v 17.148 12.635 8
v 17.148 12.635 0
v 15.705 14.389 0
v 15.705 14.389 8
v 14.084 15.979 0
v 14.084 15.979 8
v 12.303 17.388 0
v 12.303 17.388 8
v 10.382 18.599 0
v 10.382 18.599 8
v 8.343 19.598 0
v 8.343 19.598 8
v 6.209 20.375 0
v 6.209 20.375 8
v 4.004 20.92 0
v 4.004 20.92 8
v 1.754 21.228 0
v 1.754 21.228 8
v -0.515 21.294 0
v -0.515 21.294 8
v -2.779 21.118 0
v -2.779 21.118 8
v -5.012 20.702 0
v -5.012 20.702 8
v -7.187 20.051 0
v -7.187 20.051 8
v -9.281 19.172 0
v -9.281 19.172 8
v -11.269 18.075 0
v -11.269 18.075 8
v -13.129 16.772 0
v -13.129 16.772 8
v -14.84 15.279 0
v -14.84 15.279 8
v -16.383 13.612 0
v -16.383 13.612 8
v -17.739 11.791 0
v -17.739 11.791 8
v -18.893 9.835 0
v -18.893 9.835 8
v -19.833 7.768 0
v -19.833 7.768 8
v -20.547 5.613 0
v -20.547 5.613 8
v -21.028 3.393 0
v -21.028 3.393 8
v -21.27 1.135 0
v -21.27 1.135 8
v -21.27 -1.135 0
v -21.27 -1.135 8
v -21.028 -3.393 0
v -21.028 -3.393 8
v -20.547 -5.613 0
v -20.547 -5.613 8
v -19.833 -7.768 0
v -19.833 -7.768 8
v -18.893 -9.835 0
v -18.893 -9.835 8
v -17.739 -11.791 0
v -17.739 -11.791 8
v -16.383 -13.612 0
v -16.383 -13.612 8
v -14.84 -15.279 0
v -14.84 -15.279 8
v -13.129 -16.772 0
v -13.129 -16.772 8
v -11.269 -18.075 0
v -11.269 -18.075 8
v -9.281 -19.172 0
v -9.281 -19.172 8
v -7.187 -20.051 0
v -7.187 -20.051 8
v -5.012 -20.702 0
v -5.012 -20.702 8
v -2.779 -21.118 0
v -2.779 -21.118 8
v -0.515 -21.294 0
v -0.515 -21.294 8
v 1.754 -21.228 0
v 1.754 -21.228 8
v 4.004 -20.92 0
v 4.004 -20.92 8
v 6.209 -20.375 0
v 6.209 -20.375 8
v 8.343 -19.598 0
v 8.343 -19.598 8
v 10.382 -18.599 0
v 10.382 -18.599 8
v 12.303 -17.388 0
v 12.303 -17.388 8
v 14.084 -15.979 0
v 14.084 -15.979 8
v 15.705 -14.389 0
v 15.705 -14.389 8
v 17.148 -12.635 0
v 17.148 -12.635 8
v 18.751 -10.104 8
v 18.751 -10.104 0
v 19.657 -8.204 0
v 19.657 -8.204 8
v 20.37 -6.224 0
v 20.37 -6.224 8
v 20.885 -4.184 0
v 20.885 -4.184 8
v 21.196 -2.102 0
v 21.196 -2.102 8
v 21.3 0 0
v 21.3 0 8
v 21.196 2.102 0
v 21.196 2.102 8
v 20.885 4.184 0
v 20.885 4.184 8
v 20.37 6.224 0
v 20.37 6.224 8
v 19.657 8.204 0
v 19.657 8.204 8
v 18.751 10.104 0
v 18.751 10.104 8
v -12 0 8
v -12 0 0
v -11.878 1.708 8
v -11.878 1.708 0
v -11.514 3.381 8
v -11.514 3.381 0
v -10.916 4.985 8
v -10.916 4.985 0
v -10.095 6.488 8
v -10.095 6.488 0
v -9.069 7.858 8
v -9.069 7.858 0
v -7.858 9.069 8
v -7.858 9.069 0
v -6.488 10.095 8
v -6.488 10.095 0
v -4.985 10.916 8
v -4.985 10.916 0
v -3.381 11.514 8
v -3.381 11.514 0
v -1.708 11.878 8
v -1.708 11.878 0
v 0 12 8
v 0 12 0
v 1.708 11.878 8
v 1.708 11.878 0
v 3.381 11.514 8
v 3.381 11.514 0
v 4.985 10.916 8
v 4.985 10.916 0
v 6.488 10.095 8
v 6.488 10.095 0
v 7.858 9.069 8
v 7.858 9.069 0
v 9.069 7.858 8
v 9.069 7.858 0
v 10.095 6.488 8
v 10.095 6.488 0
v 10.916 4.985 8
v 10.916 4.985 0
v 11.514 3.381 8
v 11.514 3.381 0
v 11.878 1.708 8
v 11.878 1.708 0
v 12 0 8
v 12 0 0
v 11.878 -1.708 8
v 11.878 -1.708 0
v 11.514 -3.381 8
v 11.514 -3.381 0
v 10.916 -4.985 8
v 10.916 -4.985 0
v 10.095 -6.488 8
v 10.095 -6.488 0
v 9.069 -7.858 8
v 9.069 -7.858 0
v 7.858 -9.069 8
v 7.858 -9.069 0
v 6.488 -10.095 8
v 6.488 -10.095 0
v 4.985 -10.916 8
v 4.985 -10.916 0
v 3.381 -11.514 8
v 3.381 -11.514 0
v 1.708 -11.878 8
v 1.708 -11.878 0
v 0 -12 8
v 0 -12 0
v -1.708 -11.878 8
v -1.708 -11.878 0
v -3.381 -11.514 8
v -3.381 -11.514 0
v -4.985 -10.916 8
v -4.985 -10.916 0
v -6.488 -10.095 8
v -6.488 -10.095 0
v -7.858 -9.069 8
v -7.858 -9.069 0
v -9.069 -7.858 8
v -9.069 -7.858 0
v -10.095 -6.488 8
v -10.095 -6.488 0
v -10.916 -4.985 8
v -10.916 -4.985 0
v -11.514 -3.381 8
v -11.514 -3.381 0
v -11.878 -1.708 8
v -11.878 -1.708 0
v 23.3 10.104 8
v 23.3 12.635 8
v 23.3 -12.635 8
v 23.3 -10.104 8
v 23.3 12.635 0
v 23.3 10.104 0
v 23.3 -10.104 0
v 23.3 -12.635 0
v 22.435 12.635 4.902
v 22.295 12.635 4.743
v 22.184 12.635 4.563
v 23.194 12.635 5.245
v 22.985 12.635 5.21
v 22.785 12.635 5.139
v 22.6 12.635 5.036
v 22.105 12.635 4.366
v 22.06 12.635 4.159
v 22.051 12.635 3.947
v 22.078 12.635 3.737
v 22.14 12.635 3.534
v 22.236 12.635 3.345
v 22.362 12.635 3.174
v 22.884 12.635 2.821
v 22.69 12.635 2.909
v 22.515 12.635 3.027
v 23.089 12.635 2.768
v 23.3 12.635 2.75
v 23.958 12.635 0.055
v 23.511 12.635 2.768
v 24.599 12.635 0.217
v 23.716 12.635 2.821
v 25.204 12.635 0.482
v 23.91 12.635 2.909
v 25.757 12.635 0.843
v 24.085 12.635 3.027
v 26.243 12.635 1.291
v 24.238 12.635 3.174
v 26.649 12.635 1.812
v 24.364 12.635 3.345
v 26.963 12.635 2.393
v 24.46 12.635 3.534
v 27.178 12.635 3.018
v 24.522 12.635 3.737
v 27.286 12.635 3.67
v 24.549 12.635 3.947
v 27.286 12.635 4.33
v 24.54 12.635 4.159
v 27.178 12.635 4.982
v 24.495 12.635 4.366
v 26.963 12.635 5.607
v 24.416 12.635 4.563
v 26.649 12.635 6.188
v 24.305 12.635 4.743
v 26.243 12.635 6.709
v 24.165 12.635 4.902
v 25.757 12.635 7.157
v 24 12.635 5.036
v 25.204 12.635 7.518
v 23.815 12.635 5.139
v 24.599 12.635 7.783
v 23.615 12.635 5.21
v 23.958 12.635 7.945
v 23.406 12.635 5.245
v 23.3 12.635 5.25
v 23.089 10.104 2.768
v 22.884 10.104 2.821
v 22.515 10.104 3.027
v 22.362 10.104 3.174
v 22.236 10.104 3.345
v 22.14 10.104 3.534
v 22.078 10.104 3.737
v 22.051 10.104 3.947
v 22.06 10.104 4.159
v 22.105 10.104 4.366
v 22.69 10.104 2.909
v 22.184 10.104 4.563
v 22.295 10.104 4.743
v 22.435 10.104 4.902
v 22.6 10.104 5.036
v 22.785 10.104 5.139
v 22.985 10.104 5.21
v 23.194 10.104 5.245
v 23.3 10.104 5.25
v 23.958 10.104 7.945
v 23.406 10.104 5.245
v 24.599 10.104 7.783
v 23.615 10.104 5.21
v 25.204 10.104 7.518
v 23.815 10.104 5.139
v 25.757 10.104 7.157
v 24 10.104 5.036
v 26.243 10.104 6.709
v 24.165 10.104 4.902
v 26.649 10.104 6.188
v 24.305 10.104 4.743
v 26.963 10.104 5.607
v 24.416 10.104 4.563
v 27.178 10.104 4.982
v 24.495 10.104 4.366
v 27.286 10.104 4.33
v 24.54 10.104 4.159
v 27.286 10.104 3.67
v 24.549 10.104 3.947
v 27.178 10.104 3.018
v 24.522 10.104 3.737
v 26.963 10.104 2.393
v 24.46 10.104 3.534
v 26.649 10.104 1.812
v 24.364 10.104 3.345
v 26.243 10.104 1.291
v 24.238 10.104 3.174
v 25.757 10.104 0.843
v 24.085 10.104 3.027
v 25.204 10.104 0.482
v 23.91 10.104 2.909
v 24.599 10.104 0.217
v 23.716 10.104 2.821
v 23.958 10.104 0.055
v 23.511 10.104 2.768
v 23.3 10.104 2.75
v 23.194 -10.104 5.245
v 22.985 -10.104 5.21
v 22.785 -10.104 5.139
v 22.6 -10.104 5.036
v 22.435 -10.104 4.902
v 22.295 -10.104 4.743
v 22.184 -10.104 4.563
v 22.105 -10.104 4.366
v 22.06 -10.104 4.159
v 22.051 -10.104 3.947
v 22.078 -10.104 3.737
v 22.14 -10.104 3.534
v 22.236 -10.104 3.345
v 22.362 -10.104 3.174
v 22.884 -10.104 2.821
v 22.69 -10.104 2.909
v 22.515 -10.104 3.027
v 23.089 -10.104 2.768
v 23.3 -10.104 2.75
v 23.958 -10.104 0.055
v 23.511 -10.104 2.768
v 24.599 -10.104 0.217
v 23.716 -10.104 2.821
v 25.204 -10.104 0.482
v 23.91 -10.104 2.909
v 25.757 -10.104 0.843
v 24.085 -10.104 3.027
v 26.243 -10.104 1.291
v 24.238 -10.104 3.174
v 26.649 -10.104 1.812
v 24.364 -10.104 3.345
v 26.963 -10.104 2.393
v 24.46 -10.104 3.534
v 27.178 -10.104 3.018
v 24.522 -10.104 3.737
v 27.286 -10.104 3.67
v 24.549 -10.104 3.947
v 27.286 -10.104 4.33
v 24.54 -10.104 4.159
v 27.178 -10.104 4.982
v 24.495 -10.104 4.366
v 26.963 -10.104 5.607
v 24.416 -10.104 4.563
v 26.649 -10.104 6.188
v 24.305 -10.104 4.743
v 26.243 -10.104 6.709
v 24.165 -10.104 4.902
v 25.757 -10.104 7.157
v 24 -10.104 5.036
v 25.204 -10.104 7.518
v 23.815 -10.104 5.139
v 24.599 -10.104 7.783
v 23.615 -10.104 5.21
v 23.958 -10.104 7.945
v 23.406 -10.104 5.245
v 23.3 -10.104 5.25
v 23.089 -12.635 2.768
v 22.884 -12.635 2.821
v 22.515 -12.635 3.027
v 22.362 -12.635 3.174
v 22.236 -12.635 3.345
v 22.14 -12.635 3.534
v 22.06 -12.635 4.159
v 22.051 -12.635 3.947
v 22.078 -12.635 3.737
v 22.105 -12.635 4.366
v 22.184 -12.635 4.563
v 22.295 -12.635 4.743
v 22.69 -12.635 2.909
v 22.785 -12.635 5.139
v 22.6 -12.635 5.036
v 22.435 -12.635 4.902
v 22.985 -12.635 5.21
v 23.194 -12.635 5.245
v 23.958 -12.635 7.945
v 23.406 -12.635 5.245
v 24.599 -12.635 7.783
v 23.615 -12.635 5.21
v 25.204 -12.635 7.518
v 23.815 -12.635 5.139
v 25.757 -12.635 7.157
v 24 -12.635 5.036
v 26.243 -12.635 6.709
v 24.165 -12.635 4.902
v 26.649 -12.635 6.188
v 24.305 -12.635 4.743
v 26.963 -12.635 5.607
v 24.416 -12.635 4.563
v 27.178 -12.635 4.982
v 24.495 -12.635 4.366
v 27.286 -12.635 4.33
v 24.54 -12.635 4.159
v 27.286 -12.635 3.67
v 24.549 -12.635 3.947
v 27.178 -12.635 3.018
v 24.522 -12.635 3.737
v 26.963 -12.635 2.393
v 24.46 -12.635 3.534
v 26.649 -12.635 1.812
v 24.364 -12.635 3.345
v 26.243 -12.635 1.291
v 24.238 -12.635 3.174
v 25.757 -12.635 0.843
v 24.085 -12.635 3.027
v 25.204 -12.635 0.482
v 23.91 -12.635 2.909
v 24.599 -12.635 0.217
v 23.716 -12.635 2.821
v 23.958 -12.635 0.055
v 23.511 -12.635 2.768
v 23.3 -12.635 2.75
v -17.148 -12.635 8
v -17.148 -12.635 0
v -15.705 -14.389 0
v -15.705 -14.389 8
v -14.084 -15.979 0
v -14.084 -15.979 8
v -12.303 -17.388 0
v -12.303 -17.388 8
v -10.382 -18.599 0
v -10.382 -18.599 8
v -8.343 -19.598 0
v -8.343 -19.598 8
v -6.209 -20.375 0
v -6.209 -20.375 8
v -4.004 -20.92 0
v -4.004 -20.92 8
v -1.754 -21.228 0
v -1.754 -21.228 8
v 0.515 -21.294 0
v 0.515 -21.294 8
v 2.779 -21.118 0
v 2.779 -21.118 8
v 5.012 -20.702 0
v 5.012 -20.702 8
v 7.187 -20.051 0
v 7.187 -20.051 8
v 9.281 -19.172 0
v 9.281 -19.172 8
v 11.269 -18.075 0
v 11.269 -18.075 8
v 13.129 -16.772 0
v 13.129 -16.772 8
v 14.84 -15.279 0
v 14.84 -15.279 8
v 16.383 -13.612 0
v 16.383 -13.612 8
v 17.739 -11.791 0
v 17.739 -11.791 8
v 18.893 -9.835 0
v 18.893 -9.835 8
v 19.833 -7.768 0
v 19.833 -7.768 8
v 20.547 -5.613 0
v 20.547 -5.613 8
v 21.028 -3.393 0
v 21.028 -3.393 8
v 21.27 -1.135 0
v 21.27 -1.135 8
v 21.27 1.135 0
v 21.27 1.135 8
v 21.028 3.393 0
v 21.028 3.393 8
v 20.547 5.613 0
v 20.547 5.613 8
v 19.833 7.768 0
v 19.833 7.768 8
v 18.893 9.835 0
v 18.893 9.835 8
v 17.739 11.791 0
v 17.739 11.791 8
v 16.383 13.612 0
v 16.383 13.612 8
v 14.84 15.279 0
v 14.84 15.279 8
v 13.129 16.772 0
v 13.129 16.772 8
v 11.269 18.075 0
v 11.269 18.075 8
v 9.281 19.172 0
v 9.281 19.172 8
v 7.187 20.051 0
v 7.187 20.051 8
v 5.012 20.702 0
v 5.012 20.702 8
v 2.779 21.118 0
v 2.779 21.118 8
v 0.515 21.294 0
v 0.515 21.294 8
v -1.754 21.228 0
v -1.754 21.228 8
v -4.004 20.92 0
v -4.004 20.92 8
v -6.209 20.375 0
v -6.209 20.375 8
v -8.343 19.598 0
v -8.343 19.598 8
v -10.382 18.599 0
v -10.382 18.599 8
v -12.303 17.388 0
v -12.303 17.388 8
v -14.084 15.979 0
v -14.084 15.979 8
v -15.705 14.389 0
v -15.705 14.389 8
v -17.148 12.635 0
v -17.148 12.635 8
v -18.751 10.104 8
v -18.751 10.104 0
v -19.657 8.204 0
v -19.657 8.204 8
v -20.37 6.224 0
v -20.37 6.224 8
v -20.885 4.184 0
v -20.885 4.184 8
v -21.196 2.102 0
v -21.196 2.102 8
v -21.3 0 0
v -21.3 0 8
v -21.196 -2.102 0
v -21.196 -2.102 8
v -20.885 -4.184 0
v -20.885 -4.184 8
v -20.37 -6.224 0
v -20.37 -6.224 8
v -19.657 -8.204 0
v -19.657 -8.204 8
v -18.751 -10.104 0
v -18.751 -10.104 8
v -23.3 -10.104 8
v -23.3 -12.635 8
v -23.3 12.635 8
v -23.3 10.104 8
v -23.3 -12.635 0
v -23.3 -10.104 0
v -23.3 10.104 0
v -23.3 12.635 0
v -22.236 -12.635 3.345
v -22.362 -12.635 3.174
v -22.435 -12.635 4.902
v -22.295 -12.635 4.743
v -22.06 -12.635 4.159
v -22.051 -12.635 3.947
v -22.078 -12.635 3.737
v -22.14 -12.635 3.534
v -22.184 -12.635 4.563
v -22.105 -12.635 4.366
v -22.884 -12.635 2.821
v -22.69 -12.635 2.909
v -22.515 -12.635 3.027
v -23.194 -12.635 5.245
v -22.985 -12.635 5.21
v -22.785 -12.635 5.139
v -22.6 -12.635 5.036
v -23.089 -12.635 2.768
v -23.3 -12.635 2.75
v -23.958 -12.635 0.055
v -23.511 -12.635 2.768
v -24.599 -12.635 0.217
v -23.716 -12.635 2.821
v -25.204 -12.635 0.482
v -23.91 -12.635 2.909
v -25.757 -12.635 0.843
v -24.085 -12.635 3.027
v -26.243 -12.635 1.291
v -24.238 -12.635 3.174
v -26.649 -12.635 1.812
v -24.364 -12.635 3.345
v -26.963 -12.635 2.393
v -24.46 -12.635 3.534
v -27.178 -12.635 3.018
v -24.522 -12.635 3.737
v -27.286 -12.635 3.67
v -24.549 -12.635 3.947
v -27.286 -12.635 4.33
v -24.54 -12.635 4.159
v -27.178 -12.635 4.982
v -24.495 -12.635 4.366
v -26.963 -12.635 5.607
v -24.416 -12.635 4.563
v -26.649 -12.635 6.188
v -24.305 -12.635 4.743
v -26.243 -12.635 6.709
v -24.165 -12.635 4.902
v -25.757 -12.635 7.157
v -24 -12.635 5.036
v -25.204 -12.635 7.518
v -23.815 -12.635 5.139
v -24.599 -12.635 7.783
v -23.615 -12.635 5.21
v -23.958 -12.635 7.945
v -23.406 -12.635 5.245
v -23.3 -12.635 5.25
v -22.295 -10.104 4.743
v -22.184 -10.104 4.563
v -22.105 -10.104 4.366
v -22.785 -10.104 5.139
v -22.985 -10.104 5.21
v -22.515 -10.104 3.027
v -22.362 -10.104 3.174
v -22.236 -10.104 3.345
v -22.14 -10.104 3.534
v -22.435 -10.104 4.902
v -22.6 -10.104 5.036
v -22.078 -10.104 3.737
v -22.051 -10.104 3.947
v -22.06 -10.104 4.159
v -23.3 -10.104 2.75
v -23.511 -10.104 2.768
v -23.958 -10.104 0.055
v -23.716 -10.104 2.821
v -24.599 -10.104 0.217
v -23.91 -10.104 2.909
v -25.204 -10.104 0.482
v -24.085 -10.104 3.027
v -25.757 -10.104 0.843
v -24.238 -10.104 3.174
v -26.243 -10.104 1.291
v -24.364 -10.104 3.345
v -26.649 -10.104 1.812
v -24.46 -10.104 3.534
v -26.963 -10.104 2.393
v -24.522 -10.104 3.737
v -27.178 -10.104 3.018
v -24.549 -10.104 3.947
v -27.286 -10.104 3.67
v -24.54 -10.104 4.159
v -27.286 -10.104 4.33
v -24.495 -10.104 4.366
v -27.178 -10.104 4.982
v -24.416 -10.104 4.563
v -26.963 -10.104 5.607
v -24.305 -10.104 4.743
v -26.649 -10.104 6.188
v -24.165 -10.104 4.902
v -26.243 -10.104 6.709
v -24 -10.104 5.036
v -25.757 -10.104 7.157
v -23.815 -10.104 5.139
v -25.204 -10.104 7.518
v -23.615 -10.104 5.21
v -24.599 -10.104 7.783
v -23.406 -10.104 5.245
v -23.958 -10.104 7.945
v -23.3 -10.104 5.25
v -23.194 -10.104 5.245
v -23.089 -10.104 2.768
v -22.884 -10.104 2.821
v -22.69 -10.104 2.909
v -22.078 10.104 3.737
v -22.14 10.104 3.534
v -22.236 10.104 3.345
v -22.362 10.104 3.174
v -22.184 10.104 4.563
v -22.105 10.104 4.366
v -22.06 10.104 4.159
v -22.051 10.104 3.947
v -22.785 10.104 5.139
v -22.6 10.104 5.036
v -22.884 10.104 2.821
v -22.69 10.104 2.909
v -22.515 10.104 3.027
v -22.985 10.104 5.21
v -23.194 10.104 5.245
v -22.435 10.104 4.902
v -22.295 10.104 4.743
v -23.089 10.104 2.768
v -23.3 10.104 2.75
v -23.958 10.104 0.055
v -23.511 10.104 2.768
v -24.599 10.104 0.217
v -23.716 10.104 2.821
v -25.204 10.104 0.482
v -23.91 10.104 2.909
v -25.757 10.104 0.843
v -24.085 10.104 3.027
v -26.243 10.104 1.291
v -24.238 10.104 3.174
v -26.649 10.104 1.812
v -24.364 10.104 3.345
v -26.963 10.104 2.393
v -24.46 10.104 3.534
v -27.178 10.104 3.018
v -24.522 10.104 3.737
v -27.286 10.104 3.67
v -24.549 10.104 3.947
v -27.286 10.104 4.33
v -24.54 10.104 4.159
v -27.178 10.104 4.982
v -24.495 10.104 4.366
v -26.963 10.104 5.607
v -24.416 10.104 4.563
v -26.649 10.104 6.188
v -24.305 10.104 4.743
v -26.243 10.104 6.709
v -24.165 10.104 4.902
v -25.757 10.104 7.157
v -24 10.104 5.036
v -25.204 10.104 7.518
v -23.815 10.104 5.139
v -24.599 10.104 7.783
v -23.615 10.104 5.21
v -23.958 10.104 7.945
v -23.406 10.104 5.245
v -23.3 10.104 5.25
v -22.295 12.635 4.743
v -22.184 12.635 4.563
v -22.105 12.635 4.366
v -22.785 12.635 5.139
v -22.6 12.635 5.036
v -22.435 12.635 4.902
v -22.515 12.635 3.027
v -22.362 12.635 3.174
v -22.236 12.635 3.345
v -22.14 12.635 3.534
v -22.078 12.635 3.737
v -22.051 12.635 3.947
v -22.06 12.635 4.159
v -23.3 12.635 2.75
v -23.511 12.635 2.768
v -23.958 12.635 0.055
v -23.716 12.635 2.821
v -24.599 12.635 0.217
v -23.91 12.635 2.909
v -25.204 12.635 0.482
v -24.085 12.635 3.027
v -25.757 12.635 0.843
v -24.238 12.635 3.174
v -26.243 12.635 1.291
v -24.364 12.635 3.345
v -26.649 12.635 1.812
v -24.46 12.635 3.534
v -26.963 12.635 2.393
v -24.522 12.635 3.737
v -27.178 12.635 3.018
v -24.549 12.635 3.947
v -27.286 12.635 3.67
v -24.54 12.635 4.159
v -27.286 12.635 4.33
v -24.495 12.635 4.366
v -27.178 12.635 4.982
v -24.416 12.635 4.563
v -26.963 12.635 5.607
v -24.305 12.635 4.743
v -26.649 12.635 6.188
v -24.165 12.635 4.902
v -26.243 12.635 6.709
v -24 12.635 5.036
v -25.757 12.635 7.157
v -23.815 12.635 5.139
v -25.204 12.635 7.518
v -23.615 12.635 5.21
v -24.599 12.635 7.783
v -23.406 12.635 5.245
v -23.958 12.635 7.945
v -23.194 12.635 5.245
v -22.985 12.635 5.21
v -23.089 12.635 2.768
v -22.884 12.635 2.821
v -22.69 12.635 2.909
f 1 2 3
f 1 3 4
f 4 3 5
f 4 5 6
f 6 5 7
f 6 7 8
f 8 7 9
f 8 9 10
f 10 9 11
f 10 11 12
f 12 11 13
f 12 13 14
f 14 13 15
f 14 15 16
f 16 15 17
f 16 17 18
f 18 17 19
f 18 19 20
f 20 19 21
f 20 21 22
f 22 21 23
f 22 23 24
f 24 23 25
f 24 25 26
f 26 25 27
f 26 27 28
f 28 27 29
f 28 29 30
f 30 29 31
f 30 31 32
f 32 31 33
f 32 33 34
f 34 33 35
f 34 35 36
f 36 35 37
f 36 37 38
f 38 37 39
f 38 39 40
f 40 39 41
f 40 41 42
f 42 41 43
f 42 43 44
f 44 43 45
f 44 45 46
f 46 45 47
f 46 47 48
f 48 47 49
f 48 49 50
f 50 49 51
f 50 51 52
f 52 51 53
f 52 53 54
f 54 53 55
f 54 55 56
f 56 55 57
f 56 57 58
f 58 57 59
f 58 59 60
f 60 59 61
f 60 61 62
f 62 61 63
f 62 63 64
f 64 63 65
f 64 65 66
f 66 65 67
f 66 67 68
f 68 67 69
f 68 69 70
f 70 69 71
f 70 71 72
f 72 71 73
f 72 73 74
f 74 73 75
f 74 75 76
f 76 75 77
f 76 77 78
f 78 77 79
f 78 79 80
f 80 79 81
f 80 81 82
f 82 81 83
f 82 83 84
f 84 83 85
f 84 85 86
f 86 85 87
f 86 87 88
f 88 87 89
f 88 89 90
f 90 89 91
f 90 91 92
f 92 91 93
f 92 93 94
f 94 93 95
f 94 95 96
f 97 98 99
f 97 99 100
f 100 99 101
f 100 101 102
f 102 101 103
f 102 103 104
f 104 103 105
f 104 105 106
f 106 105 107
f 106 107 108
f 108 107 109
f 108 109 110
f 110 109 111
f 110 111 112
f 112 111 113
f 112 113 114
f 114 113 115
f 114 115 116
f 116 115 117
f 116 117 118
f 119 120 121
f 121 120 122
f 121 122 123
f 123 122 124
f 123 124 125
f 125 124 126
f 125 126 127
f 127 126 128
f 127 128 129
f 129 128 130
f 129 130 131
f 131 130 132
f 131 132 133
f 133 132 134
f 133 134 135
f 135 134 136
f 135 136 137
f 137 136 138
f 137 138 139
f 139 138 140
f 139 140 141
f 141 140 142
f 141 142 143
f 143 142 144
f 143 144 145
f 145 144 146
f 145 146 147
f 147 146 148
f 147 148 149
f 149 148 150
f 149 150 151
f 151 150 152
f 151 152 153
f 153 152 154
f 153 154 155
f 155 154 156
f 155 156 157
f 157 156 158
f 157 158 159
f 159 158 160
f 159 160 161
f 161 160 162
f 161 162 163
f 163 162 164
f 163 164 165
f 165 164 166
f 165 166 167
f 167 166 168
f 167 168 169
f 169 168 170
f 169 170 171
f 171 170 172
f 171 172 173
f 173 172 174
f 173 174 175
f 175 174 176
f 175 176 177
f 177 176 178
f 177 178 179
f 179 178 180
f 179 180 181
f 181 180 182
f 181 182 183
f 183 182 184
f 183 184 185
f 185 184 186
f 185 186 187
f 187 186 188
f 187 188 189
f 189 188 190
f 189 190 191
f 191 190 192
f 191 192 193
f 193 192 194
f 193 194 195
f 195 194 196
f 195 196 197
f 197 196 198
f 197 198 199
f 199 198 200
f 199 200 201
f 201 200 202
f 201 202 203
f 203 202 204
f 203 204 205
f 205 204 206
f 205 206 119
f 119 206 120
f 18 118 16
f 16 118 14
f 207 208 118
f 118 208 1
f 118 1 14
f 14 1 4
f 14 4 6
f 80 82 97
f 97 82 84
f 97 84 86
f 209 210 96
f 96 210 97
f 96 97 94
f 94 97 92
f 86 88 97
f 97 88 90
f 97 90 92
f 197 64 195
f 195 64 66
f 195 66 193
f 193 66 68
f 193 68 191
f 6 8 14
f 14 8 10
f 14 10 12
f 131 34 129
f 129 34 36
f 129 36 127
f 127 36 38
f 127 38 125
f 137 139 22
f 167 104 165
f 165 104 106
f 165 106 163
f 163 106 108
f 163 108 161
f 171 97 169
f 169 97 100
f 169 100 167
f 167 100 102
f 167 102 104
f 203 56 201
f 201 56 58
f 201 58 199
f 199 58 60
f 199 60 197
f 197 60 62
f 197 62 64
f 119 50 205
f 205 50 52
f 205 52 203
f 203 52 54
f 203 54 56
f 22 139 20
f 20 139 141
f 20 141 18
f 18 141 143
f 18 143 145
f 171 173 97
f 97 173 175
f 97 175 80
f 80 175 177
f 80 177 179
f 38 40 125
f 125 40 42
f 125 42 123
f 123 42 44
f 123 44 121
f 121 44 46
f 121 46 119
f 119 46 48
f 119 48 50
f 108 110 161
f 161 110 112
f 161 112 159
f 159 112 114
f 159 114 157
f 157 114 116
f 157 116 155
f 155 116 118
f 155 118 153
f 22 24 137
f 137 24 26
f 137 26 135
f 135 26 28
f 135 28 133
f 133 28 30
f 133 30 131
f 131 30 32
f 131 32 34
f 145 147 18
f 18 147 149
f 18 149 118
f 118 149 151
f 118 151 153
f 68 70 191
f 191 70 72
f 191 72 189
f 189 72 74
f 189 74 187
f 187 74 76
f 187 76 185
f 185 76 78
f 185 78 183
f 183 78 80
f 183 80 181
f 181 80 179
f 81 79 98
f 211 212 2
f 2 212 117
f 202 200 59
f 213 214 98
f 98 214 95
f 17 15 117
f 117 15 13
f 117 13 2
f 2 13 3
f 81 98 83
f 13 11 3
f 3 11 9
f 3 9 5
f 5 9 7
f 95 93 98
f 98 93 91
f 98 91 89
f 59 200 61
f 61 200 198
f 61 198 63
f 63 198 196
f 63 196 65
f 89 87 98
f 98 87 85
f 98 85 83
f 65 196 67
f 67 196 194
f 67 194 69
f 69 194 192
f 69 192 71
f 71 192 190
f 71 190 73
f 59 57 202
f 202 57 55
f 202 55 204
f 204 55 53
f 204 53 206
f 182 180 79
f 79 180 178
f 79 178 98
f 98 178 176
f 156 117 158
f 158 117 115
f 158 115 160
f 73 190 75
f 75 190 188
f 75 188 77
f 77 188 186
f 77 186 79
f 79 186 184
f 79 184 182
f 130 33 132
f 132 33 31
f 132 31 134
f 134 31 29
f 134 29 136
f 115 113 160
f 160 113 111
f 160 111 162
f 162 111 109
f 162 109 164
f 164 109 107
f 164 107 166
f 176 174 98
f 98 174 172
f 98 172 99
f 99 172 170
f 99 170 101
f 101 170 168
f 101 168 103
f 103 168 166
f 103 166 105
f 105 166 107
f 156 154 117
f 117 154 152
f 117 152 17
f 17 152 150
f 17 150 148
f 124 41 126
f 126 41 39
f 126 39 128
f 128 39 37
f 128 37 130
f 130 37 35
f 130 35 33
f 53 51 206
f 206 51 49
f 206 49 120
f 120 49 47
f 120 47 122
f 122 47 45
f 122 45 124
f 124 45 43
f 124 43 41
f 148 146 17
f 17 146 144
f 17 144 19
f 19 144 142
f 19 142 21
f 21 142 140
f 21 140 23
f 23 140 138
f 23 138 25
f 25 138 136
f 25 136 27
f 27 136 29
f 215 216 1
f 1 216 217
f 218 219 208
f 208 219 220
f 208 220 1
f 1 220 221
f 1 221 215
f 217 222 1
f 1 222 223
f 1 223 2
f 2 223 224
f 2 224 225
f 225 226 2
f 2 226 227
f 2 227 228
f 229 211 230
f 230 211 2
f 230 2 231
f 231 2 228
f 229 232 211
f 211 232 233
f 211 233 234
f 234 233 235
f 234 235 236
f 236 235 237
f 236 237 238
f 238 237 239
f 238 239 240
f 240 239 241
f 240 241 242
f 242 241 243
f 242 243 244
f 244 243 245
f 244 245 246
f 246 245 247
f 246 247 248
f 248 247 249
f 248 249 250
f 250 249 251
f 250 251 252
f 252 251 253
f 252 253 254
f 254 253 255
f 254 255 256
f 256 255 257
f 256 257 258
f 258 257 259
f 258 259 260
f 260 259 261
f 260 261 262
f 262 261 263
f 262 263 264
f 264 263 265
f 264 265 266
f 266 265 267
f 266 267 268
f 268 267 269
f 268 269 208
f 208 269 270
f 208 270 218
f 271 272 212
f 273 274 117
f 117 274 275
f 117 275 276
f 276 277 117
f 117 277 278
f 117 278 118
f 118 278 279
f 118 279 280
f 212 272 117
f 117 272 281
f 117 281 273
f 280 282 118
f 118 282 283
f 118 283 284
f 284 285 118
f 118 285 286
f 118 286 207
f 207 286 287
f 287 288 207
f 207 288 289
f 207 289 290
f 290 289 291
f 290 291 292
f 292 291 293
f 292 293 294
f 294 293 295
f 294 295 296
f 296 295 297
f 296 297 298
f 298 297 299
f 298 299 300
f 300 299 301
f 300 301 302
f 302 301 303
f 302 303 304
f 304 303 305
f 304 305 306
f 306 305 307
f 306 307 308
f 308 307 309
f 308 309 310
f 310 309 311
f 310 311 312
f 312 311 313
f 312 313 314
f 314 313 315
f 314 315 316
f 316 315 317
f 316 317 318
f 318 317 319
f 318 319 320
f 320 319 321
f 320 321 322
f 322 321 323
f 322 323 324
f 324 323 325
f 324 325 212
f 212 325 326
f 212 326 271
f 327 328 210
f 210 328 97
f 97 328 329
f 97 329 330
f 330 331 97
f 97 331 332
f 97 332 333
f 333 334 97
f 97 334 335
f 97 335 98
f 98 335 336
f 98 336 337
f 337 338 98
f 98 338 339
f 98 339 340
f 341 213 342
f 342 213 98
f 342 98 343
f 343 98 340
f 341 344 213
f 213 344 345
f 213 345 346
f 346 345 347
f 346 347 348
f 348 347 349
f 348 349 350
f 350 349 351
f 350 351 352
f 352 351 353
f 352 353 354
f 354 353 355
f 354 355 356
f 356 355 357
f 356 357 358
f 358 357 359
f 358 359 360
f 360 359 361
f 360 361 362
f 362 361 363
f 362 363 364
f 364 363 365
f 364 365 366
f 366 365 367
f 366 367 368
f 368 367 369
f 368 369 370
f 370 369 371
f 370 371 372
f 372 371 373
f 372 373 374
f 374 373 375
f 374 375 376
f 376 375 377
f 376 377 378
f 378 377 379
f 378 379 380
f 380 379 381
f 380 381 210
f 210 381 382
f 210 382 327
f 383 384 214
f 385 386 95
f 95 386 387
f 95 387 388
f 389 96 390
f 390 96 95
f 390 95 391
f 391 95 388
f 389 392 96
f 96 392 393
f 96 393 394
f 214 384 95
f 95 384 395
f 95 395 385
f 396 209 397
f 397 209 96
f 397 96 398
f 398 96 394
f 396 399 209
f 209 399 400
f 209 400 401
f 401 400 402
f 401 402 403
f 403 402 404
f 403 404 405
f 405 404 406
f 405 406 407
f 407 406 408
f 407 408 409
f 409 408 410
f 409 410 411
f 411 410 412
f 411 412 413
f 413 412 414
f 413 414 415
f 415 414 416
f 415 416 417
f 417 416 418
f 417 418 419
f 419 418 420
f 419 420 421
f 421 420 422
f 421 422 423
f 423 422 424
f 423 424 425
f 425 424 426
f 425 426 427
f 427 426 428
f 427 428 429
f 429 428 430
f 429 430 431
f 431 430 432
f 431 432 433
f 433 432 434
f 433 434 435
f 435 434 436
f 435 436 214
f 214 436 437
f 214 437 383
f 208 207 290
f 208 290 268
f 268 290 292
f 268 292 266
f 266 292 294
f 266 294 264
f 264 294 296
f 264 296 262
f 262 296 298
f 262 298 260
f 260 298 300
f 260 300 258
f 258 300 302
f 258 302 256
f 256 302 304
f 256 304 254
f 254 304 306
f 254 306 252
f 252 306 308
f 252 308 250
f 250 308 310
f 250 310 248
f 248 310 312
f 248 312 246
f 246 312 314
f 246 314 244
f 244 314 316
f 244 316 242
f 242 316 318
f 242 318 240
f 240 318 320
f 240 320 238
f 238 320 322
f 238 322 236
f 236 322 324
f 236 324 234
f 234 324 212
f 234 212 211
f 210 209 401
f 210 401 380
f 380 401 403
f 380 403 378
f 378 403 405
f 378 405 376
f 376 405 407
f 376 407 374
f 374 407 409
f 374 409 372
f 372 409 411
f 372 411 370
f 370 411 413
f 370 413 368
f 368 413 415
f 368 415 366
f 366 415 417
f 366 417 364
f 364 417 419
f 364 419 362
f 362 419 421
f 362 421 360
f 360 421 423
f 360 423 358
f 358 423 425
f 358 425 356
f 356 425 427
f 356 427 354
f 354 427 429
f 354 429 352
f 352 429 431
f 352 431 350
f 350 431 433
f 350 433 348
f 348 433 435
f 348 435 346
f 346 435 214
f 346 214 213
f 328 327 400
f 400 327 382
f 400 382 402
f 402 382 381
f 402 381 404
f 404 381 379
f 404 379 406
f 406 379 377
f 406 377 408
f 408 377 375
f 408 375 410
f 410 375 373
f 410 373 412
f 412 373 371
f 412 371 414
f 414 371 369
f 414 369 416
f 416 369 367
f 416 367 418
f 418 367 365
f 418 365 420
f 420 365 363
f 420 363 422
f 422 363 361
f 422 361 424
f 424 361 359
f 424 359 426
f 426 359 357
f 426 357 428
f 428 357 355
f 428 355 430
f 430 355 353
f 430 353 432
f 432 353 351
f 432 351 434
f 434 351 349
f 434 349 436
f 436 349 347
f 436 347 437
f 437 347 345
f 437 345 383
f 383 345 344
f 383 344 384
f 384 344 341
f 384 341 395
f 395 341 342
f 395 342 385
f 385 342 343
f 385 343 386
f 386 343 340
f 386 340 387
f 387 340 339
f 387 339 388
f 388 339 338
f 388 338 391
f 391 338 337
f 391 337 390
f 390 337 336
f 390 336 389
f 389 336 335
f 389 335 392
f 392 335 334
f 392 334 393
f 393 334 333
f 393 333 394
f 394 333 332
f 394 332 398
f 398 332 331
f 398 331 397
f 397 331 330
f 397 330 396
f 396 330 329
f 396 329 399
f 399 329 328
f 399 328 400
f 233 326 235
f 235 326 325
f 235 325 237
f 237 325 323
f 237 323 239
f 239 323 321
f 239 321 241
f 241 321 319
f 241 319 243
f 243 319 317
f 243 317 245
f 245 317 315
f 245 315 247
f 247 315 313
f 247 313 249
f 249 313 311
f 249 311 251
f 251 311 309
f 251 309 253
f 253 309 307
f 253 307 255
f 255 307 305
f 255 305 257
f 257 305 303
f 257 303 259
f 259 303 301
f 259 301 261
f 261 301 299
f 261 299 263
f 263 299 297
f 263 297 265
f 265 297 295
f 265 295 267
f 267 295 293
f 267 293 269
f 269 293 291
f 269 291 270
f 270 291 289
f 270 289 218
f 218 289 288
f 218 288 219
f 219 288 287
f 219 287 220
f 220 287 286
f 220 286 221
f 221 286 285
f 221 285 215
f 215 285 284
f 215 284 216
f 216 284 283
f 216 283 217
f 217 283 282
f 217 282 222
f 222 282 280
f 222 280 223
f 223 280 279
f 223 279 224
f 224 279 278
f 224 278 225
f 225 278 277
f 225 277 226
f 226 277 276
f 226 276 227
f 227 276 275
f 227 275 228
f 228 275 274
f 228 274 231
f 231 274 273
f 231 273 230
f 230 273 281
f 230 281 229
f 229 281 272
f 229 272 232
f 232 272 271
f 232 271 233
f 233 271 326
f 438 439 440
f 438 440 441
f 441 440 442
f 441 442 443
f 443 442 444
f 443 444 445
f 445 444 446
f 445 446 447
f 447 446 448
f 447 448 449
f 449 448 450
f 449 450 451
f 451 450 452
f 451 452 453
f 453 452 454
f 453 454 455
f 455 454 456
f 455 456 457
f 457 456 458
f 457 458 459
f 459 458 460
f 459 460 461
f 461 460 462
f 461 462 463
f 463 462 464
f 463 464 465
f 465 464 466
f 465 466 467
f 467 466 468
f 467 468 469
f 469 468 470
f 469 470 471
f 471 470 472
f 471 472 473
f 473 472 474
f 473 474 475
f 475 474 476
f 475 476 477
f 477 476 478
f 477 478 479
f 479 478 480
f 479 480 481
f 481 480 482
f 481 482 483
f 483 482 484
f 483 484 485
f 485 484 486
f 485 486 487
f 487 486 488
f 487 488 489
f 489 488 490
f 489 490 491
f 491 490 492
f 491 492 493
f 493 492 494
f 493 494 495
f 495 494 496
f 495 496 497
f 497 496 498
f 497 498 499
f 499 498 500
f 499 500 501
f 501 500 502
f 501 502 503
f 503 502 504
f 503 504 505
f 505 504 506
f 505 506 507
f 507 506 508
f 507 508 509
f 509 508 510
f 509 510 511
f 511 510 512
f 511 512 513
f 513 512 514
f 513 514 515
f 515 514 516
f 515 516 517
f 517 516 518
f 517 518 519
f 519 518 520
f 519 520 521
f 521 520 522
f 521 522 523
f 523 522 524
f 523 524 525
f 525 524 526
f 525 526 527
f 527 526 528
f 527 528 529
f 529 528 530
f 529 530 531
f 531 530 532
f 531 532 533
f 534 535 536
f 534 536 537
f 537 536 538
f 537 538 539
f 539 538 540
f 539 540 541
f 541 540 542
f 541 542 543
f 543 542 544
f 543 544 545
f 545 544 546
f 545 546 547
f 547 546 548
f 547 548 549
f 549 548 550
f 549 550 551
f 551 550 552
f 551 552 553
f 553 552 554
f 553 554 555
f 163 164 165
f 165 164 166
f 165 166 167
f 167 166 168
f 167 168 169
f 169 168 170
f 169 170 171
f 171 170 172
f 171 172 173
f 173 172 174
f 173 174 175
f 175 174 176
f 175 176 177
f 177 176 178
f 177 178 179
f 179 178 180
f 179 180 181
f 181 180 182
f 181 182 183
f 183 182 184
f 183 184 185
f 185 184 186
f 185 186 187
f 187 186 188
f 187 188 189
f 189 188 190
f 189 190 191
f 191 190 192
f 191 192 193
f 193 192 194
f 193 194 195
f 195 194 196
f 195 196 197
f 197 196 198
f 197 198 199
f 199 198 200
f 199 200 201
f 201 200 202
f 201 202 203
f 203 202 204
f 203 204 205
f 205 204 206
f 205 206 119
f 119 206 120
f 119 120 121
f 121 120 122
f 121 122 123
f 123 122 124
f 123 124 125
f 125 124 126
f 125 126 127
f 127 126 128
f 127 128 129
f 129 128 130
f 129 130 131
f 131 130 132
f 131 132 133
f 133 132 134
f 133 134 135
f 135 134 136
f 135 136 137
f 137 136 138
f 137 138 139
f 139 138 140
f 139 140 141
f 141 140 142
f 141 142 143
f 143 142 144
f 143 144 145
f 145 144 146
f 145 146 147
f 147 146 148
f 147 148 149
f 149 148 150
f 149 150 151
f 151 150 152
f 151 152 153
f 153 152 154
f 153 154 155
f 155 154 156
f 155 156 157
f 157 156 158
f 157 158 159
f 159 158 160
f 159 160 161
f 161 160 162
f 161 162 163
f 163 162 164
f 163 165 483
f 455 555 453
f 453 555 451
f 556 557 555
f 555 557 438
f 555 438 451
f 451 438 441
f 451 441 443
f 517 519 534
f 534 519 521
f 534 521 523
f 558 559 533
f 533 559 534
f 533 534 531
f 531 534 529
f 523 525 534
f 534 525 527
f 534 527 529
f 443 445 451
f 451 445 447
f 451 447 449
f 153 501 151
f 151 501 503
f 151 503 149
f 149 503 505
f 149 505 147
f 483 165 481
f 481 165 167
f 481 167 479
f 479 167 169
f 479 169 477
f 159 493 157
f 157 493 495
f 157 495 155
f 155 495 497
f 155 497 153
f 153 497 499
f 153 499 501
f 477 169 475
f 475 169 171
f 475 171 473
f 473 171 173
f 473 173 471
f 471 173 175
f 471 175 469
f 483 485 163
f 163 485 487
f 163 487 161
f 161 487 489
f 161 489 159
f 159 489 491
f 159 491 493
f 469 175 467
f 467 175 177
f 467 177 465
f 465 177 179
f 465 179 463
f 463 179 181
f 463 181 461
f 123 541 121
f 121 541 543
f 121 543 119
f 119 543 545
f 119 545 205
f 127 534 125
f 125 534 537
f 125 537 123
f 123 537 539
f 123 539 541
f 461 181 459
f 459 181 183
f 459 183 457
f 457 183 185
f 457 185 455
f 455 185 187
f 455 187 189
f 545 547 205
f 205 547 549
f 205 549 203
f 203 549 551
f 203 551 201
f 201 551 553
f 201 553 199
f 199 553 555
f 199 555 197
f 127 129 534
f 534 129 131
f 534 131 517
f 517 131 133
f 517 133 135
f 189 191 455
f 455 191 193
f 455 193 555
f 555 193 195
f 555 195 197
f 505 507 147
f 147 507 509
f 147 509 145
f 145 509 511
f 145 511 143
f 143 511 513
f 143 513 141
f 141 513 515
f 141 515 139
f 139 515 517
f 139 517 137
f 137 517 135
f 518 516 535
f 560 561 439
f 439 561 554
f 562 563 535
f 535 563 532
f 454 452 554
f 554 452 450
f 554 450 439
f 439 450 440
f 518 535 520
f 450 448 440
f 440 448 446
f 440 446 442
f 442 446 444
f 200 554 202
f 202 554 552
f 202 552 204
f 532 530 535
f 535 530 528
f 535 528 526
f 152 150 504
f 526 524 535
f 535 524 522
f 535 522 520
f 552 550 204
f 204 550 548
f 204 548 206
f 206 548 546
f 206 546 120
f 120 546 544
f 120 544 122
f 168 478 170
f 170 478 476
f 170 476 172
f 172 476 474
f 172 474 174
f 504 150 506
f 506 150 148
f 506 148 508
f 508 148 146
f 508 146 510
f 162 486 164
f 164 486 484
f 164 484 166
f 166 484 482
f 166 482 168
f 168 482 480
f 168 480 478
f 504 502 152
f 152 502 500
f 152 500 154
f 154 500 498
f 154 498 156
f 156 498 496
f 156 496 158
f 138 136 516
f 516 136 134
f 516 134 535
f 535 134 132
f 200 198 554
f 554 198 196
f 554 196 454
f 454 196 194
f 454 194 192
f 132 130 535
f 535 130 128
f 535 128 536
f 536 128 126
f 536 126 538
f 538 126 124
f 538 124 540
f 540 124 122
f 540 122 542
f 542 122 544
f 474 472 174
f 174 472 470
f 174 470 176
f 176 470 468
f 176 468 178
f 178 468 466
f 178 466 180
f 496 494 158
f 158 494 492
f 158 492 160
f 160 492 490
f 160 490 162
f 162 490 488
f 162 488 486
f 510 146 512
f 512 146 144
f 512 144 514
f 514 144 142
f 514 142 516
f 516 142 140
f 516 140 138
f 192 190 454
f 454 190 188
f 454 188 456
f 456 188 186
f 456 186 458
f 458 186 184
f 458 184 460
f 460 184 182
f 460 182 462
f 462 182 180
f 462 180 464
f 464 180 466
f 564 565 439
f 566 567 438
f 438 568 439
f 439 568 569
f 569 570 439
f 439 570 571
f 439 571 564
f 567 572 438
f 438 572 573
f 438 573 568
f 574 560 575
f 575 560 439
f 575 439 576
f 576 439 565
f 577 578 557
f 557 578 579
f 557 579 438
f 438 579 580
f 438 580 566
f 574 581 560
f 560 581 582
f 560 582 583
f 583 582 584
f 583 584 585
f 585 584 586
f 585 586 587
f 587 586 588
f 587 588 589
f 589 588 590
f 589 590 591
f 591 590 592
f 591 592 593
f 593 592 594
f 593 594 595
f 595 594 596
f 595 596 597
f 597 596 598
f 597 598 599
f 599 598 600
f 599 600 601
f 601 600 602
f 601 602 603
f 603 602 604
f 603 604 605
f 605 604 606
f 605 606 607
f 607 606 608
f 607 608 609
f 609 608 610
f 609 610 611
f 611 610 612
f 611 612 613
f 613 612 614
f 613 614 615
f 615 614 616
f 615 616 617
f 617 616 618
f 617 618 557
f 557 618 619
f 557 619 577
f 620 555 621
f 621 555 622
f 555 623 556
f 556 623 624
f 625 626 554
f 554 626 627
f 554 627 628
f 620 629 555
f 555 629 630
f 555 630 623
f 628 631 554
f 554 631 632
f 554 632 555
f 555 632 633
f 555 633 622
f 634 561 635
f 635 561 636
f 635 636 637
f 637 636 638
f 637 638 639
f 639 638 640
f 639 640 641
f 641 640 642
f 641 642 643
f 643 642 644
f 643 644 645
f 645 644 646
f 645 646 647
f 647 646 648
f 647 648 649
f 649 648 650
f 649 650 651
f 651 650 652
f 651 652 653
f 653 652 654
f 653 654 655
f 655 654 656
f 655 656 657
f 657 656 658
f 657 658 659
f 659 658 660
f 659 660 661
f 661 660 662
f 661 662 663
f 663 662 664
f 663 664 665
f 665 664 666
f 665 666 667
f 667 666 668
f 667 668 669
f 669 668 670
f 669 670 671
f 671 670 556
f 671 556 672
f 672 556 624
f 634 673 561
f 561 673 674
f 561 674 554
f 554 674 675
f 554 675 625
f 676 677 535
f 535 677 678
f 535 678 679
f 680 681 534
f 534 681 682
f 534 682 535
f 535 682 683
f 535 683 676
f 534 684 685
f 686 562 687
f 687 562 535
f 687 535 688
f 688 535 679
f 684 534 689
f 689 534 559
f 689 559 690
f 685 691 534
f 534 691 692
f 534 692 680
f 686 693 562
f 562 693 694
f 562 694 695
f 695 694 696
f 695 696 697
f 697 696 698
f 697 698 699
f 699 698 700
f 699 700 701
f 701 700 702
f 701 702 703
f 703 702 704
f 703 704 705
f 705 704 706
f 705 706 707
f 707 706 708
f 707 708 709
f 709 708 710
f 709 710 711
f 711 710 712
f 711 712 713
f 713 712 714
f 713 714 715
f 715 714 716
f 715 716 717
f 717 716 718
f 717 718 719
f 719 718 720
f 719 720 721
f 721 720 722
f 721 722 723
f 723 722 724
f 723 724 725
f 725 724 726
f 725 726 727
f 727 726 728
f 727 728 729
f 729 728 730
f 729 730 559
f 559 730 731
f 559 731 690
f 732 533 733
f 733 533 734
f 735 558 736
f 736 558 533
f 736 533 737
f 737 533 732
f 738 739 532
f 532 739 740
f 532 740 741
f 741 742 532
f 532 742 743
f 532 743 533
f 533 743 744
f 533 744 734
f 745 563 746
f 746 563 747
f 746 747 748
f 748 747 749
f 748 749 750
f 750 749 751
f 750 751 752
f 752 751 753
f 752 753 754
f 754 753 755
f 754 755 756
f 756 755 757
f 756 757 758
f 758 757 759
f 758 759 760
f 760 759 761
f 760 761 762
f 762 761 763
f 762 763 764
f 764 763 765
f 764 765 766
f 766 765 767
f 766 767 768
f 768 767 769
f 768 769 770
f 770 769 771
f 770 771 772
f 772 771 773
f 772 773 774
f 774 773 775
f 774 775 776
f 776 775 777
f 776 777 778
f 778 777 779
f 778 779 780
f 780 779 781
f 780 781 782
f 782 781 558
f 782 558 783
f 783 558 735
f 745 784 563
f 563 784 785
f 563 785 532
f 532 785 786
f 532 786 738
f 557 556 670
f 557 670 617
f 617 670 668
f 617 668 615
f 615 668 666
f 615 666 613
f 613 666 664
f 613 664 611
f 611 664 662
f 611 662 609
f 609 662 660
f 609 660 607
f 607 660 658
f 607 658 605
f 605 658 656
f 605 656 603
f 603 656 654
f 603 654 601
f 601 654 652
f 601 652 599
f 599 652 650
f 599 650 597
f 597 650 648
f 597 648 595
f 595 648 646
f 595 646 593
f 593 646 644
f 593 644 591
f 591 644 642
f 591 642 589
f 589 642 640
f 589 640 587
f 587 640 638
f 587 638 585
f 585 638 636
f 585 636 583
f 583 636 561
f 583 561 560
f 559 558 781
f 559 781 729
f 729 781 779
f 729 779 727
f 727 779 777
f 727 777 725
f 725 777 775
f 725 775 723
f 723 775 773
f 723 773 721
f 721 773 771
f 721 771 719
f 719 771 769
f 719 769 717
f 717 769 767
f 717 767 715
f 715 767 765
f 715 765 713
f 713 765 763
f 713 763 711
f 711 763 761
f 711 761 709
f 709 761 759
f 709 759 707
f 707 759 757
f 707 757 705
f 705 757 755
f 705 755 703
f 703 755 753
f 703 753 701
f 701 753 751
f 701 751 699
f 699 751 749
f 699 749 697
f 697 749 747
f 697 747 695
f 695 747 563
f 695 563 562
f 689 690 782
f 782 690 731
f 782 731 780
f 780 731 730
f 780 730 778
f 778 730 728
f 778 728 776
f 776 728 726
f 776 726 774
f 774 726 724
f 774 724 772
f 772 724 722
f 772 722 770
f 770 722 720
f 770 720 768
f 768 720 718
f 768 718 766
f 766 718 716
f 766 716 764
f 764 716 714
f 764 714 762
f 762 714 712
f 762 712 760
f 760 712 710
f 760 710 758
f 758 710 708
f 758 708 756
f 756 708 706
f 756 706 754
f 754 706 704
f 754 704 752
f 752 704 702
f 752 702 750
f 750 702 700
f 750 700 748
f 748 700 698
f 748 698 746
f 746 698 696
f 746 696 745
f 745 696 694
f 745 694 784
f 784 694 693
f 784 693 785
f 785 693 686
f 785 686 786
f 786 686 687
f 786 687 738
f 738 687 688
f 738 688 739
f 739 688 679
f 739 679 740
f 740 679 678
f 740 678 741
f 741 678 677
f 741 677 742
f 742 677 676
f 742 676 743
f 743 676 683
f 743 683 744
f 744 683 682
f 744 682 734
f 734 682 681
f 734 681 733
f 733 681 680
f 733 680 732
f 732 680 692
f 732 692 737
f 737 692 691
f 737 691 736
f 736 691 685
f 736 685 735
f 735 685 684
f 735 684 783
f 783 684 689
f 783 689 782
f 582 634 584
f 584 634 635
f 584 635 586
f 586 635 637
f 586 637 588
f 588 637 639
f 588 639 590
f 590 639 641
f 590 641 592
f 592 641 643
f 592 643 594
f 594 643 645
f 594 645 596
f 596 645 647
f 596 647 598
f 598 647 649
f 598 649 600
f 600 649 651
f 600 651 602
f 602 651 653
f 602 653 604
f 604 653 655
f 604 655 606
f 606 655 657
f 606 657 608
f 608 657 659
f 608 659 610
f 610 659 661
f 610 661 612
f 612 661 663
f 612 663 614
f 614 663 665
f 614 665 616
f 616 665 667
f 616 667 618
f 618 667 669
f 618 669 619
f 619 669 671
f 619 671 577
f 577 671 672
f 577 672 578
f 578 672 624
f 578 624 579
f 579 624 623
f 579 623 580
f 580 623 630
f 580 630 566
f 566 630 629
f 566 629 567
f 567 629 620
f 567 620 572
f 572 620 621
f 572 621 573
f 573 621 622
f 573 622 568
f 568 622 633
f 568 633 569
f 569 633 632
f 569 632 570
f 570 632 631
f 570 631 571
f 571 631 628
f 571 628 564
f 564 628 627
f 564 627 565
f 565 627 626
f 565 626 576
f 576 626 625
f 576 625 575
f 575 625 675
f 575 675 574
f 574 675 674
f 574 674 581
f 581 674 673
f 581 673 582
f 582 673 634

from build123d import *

# Parameters (mm, degrees)
SKETCH2_R           = 21.3
SKETCH2_R_2         = 12
BOSS_EXTRUDE1_DEPTH = 8
SKETCH3_W           = 8
SKETCH3_H           = 2.531451489
BOSS_EXTRUDE2_DEPTH = 7
SKETCH4_W           = 4
SKETCH4_H           = 2.531451489
SKETCH5_W           = 4
SKETCH5_H           = 2.531451489
CUT_EXTRUDE1_REACH  = 46.282
SKETCH6_R           = 1.25
CIRPATTERN2_COUNT   = 2


with BuildPart() as part:
    # Sketch2 → Boss-Extrude1 (new body)
    with BuildSketch(Plane.XY):
        Circle(SKETCH2_R)
        Circle(SKETCH2_R_2, mode=Mode.SUBTRACT)
    extrude(amount=BOSS_EXTRUDE1_DEPTH)

    # Sketch3 → Boss-Extrude2 (add)
    with BuildSketch(Plane(origin=(16.3, 0, 0), x_dir=(0, 0, -1), z_dir=(1, 0, 0))):
        with Locations((-4, -11.369631879)):
            Rectangle(SKETCH3_W, SKETCH3_H)
        with Locations((-4, 11.369631879)):
            Rectangle(SKETCH3_W, SKETCH3_H)
    extrude(amount=BOSS_EXTRUDE2_DEPTH)

    # Sketch4 → Revolve1 (revolve)
    with BuildSketch(Plane(origin=(23.3, 0, 0), x_dir=(0, 0, -1), z_dir=(1, 0, 0))):
        with Locations((-2, 11.369631879)):
            Rectangle(SKETCH4_W, SKETCH4_H)
    revolve(axis=Axis((23.3, 10.103906134, 4), (0, 1, 0)))

    # Sketch5 → Revolve2 (revolve)
    with BuildSketch(Plane(origin=(23.3, 0, 0), x_dir=(0, 0, -1), z_dir=(1, 0, 0))):
        with Locations((-2, -11.369631879)):
            Rectangle(SKETCH5_W, SKETCH5_H)
    revolve(axis=Axis((23.3, -12.635357623, 4), (0, 1, 0)))

    # Cut-Extrude1: up to this face of the body (flat: up to its plane)
    cut_extrude1_end = Plane(part.part.faces().sort_by_distance((21.837440816, 12.635357623, 4))[0])
    # Sketch6 → Cut-Extrude1 (cut, up to the picked face)
    with BuildSketch(Plane(origin=(0, -12.635357623, 0), x_dir=(-1, 0, 0), z_dir=(0, -1, 0)), mode=Mode.PRIVATE) as cut_extrude1_sk1:
        with Locations(Location((-23.3, -4, 0), (0, 0, 90))):
            Circle(SKETCH6_R)
    cut_extrude1_tool1 = split(extrude(cut_extrude1_sk1.sketch, amount=-CUT_EXTRUDE1_REACH, mode=Mode.PRIVATE), bisect_by=cut_extrude1_end, keep=Keep.BOTH, mode=Mode.PRIVATE)
    add(cut_extrude1_tool1.solids().sort_by(Axis((23.3, -12.635358, 4), (0, 1, 0)))[0], mode=Mode.SUBTRACT)


with BuildPart() as cirpattern2_1:
    # CirPattern2: pattern copy
    add(part.part.rotate(Axis((0, 0, 0), (0, 0, 1)), 1 * 360 / CIRPATTERN2_COUNT))


solid = Compound([part.part, cirpattern2_1.part])
